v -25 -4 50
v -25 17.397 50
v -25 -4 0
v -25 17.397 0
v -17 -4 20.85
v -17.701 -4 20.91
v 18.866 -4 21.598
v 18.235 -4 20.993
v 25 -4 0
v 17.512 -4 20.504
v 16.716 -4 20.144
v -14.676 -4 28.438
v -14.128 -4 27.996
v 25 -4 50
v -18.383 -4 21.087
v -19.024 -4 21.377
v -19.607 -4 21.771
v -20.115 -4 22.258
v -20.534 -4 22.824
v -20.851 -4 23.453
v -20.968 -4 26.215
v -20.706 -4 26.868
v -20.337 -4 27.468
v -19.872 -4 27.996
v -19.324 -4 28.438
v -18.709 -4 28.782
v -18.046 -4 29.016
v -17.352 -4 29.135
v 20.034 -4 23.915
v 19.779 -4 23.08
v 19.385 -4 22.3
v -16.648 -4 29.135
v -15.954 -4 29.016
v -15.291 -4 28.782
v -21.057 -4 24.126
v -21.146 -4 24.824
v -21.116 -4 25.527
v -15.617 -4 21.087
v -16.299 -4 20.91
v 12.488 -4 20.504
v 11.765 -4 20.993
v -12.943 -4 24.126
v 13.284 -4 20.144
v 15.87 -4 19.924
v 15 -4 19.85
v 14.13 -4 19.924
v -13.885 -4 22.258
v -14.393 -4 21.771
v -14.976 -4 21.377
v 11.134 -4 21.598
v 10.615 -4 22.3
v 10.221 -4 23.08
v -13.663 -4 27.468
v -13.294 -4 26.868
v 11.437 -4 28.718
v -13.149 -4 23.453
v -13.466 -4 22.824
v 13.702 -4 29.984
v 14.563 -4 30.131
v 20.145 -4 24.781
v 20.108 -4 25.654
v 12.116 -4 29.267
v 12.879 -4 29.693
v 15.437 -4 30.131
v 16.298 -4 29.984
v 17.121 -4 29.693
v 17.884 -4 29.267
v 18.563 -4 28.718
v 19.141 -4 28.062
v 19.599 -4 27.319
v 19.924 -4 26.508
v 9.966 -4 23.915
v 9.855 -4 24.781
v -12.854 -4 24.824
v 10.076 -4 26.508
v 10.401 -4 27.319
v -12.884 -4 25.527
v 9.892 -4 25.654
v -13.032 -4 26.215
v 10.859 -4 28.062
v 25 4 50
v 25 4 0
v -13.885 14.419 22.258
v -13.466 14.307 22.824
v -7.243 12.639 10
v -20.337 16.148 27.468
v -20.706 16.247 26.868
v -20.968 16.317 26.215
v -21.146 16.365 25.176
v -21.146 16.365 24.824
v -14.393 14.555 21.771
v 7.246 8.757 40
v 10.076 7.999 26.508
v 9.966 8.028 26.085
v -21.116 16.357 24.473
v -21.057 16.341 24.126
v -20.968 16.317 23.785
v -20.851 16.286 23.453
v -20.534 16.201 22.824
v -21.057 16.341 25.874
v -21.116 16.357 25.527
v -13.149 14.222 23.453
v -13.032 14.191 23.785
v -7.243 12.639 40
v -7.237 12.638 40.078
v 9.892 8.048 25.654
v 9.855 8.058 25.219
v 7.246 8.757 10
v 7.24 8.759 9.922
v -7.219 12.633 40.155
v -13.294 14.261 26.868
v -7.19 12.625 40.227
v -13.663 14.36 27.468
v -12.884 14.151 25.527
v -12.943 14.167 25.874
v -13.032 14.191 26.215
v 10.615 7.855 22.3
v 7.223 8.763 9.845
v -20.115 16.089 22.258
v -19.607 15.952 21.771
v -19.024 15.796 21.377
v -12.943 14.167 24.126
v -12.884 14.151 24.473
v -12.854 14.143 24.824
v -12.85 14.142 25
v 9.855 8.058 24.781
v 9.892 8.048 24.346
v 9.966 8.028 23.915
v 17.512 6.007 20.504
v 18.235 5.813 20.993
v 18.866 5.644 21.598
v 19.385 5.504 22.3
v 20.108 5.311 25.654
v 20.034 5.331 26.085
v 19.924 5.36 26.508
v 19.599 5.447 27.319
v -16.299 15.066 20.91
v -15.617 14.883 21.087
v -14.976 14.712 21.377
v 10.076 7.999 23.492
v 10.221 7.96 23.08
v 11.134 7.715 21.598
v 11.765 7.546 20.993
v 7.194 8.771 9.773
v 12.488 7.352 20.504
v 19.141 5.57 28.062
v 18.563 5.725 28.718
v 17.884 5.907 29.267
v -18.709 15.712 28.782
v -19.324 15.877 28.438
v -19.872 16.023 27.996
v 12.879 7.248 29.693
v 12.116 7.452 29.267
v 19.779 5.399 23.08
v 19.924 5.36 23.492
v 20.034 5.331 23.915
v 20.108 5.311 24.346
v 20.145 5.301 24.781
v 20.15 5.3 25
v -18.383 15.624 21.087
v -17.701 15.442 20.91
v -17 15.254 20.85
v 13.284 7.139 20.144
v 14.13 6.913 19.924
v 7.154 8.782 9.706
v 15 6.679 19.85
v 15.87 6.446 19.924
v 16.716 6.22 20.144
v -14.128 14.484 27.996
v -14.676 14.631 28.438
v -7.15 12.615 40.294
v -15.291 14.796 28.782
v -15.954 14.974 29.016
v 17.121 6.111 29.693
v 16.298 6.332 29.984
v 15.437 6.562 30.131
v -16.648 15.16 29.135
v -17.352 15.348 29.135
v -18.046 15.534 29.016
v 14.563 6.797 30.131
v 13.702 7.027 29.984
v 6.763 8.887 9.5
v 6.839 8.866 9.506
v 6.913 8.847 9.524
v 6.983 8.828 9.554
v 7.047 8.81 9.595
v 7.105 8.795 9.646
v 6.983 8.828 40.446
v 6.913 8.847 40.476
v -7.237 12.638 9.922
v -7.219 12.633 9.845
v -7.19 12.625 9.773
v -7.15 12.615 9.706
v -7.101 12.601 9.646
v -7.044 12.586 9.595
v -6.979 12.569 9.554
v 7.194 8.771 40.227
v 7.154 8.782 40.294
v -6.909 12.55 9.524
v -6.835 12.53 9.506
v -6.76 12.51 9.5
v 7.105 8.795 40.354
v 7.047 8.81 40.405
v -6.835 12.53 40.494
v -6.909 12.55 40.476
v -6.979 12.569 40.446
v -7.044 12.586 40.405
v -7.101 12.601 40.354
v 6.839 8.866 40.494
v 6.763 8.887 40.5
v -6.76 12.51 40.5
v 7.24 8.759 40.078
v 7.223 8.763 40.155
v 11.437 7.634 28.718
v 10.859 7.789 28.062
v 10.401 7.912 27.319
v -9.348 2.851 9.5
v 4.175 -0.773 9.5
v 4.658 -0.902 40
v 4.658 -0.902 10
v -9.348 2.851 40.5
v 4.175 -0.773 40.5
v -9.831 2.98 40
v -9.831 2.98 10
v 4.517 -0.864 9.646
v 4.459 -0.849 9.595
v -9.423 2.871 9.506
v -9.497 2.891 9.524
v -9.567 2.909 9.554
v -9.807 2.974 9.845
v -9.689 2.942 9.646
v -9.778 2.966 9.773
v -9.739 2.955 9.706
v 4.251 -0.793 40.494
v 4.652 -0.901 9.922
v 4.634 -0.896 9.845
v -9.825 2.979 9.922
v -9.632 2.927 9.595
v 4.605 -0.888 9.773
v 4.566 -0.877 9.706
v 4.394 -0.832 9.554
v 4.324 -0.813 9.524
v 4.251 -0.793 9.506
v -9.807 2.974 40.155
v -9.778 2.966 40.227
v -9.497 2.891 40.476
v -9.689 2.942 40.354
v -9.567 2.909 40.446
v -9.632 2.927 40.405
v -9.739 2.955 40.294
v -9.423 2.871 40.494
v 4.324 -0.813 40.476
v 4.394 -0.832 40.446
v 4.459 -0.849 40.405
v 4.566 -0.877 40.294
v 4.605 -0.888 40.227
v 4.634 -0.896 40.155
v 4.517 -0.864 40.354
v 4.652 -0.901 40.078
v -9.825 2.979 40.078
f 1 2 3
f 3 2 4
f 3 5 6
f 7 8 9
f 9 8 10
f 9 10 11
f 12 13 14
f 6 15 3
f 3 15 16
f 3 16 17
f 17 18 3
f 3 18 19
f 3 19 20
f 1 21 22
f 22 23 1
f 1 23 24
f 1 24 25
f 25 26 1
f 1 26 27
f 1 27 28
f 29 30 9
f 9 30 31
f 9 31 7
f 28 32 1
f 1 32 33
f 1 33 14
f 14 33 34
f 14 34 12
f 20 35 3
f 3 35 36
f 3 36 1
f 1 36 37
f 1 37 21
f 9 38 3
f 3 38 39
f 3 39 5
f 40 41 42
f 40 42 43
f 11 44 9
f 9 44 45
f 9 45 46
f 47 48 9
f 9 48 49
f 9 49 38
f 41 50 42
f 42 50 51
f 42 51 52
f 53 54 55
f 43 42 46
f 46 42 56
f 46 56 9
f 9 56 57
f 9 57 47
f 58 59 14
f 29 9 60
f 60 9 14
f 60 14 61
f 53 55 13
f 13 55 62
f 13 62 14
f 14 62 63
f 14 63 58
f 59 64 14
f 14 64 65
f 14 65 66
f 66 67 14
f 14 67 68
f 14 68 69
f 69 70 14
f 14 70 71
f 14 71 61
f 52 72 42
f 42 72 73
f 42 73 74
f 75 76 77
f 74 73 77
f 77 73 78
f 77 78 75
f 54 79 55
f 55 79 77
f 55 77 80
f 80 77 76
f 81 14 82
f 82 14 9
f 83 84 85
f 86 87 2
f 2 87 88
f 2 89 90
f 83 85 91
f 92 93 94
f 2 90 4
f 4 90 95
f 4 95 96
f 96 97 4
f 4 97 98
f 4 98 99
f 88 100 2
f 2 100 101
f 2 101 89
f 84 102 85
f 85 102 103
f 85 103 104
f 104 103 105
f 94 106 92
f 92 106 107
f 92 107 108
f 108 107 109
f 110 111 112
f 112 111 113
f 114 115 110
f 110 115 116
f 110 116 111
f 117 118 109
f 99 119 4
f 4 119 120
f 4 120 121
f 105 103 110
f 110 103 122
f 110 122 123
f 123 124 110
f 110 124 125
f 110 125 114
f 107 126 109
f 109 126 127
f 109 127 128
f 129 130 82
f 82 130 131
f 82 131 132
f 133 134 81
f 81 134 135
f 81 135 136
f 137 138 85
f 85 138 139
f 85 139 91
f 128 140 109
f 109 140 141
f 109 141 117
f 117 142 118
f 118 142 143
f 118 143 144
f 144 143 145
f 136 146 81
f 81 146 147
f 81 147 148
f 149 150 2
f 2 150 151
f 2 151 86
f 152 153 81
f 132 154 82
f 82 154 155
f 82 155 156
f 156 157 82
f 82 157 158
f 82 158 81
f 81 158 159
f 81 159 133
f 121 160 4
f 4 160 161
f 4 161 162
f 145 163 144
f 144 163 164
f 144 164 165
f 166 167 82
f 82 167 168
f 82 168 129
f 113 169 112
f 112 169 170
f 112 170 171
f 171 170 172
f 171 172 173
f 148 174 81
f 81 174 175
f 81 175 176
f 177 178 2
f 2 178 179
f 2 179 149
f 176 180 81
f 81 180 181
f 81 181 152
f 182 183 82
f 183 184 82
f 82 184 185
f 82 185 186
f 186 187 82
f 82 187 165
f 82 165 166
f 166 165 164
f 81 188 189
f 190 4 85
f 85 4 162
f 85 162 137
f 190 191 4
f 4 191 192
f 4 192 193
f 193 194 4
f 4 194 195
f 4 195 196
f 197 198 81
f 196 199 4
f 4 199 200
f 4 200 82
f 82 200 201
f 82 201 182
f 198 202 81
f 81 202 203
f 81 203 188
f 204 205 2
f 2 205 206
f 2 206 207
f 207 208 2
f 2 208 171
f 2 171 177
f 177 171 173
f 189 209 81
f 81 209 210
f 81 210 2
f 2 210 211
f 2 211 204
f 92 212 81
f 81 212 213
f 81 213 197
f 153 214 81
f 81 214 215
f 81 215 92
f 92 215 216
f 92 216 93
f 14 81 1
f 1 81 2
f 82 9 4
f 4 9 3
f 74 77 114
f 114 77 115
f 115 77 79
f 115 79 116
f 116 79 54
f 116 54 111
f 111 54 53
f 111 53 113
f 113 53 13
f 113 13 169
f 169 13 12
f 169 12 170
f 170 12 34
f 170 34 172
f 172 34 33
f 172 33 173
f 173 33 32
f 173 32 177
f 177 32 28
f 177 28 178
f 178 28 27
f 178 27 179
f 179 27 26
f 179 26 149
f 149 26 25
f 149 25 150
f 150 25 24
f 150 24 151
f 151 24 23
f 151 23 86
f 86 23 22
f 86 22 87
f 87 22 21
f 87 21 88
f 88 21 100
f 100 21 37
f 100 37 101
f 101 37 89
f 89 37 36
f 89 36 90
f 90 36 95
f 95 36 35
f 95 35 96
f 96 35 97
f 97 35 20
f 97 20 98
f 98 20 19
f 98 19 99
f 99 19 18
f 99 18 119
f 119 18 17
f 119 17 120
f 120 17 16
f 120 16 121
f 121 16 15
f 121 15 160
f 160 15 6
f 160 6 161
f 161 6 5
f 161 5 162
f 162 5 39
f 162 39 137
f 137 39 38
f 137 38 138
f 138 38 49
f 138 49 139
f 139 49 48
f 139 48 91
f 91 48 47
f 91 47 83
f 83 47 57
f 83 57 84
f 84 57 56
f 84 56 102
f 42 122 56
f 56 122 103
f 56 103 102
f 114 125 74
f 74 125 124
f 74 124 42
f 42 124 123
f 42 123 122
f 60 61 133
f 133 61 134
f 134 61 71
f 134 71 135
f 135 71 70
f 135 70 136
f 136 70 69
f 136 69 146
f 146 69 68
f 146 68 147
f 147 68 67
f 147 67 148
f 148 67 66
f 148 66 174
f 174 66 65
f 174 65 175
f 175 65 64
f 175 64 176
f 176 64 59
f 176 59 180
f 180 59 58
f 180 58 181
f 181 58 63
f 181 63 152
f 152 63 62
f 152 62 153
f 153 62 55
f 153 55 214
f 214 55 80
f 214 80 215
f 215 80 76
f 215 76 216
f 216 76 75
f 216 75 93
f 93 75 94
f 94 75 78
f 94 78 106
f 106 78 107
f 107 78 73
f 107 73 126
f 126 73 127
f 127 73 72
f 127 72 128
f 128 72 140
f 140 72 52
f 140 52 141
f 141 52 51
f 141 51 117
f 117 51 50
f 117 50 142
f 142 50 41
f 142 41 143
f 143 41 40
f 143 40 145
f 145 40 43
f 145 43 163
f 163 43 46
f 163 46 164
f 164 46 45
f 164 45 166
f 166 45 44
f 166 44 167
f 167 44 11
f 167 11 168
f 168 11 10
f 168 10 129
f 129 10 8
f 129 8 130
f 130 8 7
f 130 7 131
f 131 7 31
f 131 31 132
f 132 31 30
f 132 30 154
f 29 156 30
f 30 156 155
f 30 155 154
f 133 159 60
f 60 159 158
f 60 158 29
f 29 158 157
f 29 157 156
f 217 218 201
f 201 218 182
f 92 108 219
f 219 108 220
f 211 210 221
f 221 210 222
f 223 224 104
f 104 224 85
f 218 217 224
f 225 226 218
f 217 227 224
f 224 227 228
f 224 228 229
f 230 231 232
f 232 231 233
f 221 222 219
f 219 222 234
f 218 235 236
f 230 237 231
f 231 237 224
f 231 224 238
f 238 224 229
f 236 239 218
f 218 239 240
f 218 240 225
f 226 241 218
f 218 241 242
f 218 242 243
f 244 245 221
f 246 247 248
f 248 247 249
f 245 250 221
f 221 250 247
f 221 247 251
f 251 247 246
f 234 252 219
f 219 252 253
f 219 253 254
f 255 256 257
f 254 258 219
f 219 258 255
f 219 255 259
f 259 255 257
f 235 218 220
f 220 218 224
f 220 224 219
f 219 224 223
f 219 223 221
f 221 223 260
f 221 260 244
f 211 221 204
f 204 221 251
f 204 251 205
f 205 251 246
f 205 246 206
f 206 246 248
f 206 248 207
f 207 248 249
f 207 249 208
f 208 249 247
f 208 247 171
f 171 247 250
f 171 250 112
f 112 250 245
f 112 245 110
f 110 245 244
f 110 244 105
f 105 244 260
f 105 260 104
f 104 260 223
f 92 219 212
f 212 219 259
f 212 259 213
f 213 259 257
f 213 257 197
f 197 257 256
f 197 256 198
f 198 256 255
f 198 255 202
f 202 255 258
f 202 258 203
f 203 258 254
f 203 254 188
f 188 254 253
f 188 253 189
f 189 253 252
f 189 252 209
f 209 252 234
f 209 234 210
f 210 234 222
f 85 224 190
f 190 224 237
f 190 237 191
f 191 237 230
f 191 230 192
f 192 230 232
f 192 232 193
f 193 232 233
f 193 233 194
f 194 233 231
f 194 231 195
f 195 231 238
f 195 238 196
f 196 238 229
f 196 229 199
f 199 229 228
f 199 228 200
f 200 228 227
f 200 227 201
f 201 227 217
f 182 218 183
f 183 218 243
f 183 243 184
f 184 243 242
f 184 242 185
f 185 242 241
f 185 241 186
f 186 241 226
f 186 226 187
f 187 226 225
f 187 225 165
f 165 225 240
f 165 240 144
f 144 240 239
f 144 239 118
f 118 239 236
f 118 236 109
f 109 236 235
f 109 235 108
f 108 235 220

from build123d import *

# Parameters (mm, degrees)
EXTRUDE_8_DEPTH     = 50
SKETCH_9_R          = 5.15
SKETCH_9_R_2        = 4.15
CUT_EXTRUDE_2_DEPTH = 50
SKETCH_10_W         = 15
SKETCH_10_H         = 31
CUT_EXTRUDE_3_DEPTH = 10
FILLET_1_R          = 0.5


with BuildPart() as part:
    # 草图8 → 凸台-拉伸8 (new body)
    with BuildSketch(Plane.XY):
        Polygon((25, -4), (25, 4), (-25, 17.397459622), (-25, 4), (-25, -4), align=None)
    extrude(amount=EXTRUDE_8_DEPTH)

    # 草图9 → 切除-拉伸2 (cut)
    with BuildSketch(Plane.XZ.offset(4)):
        with Locations(Location((15, 25, 0), (0, 0, 270))):
            Circle(SKETCH_9_R)
        with Locations(Location((-17, 25, 0), (0, 0, 270))):
            Circle(SKETCH_9_R_2)
    extrude(amount=-CUT_EXTRUDE_2_DEPTH, mode=Mode.SUBTRACT)

    # 草图10 → 切除-拉伸3 (cut)
    with BuildSketch(Plane(origin=(2.674682453, 9.982050808, 0), x_dir=(0.9659258262890701, -0.2588190451025142, 0), z_dir=(0.2588190451025142, 0.9659258262890701, 0))):
        with Locations((-2.767130523, -25)):
            Rectangle(SKETCH_10_W, SKETCH_10_H)
    extrude(amount=-CUT_EXTRUDE_3_DEPTH, mode=Mode.SUBTRACT)

    # 圆角1
    fillet_1_edges = [part.edges().sort_by_distance(p)[0] for p in [
        (-8.536699307, 7.809750594, 9.5),
        (5.952188087, 3.927464918, 9.5),
        (5.952188087, 3.927464918, 40.5),
        (-8.536699307, 7.809750594, 40.5),
    ]]
    fillet(fillet_1_edges, radius=FILLET_1_R)


solid = part.part
